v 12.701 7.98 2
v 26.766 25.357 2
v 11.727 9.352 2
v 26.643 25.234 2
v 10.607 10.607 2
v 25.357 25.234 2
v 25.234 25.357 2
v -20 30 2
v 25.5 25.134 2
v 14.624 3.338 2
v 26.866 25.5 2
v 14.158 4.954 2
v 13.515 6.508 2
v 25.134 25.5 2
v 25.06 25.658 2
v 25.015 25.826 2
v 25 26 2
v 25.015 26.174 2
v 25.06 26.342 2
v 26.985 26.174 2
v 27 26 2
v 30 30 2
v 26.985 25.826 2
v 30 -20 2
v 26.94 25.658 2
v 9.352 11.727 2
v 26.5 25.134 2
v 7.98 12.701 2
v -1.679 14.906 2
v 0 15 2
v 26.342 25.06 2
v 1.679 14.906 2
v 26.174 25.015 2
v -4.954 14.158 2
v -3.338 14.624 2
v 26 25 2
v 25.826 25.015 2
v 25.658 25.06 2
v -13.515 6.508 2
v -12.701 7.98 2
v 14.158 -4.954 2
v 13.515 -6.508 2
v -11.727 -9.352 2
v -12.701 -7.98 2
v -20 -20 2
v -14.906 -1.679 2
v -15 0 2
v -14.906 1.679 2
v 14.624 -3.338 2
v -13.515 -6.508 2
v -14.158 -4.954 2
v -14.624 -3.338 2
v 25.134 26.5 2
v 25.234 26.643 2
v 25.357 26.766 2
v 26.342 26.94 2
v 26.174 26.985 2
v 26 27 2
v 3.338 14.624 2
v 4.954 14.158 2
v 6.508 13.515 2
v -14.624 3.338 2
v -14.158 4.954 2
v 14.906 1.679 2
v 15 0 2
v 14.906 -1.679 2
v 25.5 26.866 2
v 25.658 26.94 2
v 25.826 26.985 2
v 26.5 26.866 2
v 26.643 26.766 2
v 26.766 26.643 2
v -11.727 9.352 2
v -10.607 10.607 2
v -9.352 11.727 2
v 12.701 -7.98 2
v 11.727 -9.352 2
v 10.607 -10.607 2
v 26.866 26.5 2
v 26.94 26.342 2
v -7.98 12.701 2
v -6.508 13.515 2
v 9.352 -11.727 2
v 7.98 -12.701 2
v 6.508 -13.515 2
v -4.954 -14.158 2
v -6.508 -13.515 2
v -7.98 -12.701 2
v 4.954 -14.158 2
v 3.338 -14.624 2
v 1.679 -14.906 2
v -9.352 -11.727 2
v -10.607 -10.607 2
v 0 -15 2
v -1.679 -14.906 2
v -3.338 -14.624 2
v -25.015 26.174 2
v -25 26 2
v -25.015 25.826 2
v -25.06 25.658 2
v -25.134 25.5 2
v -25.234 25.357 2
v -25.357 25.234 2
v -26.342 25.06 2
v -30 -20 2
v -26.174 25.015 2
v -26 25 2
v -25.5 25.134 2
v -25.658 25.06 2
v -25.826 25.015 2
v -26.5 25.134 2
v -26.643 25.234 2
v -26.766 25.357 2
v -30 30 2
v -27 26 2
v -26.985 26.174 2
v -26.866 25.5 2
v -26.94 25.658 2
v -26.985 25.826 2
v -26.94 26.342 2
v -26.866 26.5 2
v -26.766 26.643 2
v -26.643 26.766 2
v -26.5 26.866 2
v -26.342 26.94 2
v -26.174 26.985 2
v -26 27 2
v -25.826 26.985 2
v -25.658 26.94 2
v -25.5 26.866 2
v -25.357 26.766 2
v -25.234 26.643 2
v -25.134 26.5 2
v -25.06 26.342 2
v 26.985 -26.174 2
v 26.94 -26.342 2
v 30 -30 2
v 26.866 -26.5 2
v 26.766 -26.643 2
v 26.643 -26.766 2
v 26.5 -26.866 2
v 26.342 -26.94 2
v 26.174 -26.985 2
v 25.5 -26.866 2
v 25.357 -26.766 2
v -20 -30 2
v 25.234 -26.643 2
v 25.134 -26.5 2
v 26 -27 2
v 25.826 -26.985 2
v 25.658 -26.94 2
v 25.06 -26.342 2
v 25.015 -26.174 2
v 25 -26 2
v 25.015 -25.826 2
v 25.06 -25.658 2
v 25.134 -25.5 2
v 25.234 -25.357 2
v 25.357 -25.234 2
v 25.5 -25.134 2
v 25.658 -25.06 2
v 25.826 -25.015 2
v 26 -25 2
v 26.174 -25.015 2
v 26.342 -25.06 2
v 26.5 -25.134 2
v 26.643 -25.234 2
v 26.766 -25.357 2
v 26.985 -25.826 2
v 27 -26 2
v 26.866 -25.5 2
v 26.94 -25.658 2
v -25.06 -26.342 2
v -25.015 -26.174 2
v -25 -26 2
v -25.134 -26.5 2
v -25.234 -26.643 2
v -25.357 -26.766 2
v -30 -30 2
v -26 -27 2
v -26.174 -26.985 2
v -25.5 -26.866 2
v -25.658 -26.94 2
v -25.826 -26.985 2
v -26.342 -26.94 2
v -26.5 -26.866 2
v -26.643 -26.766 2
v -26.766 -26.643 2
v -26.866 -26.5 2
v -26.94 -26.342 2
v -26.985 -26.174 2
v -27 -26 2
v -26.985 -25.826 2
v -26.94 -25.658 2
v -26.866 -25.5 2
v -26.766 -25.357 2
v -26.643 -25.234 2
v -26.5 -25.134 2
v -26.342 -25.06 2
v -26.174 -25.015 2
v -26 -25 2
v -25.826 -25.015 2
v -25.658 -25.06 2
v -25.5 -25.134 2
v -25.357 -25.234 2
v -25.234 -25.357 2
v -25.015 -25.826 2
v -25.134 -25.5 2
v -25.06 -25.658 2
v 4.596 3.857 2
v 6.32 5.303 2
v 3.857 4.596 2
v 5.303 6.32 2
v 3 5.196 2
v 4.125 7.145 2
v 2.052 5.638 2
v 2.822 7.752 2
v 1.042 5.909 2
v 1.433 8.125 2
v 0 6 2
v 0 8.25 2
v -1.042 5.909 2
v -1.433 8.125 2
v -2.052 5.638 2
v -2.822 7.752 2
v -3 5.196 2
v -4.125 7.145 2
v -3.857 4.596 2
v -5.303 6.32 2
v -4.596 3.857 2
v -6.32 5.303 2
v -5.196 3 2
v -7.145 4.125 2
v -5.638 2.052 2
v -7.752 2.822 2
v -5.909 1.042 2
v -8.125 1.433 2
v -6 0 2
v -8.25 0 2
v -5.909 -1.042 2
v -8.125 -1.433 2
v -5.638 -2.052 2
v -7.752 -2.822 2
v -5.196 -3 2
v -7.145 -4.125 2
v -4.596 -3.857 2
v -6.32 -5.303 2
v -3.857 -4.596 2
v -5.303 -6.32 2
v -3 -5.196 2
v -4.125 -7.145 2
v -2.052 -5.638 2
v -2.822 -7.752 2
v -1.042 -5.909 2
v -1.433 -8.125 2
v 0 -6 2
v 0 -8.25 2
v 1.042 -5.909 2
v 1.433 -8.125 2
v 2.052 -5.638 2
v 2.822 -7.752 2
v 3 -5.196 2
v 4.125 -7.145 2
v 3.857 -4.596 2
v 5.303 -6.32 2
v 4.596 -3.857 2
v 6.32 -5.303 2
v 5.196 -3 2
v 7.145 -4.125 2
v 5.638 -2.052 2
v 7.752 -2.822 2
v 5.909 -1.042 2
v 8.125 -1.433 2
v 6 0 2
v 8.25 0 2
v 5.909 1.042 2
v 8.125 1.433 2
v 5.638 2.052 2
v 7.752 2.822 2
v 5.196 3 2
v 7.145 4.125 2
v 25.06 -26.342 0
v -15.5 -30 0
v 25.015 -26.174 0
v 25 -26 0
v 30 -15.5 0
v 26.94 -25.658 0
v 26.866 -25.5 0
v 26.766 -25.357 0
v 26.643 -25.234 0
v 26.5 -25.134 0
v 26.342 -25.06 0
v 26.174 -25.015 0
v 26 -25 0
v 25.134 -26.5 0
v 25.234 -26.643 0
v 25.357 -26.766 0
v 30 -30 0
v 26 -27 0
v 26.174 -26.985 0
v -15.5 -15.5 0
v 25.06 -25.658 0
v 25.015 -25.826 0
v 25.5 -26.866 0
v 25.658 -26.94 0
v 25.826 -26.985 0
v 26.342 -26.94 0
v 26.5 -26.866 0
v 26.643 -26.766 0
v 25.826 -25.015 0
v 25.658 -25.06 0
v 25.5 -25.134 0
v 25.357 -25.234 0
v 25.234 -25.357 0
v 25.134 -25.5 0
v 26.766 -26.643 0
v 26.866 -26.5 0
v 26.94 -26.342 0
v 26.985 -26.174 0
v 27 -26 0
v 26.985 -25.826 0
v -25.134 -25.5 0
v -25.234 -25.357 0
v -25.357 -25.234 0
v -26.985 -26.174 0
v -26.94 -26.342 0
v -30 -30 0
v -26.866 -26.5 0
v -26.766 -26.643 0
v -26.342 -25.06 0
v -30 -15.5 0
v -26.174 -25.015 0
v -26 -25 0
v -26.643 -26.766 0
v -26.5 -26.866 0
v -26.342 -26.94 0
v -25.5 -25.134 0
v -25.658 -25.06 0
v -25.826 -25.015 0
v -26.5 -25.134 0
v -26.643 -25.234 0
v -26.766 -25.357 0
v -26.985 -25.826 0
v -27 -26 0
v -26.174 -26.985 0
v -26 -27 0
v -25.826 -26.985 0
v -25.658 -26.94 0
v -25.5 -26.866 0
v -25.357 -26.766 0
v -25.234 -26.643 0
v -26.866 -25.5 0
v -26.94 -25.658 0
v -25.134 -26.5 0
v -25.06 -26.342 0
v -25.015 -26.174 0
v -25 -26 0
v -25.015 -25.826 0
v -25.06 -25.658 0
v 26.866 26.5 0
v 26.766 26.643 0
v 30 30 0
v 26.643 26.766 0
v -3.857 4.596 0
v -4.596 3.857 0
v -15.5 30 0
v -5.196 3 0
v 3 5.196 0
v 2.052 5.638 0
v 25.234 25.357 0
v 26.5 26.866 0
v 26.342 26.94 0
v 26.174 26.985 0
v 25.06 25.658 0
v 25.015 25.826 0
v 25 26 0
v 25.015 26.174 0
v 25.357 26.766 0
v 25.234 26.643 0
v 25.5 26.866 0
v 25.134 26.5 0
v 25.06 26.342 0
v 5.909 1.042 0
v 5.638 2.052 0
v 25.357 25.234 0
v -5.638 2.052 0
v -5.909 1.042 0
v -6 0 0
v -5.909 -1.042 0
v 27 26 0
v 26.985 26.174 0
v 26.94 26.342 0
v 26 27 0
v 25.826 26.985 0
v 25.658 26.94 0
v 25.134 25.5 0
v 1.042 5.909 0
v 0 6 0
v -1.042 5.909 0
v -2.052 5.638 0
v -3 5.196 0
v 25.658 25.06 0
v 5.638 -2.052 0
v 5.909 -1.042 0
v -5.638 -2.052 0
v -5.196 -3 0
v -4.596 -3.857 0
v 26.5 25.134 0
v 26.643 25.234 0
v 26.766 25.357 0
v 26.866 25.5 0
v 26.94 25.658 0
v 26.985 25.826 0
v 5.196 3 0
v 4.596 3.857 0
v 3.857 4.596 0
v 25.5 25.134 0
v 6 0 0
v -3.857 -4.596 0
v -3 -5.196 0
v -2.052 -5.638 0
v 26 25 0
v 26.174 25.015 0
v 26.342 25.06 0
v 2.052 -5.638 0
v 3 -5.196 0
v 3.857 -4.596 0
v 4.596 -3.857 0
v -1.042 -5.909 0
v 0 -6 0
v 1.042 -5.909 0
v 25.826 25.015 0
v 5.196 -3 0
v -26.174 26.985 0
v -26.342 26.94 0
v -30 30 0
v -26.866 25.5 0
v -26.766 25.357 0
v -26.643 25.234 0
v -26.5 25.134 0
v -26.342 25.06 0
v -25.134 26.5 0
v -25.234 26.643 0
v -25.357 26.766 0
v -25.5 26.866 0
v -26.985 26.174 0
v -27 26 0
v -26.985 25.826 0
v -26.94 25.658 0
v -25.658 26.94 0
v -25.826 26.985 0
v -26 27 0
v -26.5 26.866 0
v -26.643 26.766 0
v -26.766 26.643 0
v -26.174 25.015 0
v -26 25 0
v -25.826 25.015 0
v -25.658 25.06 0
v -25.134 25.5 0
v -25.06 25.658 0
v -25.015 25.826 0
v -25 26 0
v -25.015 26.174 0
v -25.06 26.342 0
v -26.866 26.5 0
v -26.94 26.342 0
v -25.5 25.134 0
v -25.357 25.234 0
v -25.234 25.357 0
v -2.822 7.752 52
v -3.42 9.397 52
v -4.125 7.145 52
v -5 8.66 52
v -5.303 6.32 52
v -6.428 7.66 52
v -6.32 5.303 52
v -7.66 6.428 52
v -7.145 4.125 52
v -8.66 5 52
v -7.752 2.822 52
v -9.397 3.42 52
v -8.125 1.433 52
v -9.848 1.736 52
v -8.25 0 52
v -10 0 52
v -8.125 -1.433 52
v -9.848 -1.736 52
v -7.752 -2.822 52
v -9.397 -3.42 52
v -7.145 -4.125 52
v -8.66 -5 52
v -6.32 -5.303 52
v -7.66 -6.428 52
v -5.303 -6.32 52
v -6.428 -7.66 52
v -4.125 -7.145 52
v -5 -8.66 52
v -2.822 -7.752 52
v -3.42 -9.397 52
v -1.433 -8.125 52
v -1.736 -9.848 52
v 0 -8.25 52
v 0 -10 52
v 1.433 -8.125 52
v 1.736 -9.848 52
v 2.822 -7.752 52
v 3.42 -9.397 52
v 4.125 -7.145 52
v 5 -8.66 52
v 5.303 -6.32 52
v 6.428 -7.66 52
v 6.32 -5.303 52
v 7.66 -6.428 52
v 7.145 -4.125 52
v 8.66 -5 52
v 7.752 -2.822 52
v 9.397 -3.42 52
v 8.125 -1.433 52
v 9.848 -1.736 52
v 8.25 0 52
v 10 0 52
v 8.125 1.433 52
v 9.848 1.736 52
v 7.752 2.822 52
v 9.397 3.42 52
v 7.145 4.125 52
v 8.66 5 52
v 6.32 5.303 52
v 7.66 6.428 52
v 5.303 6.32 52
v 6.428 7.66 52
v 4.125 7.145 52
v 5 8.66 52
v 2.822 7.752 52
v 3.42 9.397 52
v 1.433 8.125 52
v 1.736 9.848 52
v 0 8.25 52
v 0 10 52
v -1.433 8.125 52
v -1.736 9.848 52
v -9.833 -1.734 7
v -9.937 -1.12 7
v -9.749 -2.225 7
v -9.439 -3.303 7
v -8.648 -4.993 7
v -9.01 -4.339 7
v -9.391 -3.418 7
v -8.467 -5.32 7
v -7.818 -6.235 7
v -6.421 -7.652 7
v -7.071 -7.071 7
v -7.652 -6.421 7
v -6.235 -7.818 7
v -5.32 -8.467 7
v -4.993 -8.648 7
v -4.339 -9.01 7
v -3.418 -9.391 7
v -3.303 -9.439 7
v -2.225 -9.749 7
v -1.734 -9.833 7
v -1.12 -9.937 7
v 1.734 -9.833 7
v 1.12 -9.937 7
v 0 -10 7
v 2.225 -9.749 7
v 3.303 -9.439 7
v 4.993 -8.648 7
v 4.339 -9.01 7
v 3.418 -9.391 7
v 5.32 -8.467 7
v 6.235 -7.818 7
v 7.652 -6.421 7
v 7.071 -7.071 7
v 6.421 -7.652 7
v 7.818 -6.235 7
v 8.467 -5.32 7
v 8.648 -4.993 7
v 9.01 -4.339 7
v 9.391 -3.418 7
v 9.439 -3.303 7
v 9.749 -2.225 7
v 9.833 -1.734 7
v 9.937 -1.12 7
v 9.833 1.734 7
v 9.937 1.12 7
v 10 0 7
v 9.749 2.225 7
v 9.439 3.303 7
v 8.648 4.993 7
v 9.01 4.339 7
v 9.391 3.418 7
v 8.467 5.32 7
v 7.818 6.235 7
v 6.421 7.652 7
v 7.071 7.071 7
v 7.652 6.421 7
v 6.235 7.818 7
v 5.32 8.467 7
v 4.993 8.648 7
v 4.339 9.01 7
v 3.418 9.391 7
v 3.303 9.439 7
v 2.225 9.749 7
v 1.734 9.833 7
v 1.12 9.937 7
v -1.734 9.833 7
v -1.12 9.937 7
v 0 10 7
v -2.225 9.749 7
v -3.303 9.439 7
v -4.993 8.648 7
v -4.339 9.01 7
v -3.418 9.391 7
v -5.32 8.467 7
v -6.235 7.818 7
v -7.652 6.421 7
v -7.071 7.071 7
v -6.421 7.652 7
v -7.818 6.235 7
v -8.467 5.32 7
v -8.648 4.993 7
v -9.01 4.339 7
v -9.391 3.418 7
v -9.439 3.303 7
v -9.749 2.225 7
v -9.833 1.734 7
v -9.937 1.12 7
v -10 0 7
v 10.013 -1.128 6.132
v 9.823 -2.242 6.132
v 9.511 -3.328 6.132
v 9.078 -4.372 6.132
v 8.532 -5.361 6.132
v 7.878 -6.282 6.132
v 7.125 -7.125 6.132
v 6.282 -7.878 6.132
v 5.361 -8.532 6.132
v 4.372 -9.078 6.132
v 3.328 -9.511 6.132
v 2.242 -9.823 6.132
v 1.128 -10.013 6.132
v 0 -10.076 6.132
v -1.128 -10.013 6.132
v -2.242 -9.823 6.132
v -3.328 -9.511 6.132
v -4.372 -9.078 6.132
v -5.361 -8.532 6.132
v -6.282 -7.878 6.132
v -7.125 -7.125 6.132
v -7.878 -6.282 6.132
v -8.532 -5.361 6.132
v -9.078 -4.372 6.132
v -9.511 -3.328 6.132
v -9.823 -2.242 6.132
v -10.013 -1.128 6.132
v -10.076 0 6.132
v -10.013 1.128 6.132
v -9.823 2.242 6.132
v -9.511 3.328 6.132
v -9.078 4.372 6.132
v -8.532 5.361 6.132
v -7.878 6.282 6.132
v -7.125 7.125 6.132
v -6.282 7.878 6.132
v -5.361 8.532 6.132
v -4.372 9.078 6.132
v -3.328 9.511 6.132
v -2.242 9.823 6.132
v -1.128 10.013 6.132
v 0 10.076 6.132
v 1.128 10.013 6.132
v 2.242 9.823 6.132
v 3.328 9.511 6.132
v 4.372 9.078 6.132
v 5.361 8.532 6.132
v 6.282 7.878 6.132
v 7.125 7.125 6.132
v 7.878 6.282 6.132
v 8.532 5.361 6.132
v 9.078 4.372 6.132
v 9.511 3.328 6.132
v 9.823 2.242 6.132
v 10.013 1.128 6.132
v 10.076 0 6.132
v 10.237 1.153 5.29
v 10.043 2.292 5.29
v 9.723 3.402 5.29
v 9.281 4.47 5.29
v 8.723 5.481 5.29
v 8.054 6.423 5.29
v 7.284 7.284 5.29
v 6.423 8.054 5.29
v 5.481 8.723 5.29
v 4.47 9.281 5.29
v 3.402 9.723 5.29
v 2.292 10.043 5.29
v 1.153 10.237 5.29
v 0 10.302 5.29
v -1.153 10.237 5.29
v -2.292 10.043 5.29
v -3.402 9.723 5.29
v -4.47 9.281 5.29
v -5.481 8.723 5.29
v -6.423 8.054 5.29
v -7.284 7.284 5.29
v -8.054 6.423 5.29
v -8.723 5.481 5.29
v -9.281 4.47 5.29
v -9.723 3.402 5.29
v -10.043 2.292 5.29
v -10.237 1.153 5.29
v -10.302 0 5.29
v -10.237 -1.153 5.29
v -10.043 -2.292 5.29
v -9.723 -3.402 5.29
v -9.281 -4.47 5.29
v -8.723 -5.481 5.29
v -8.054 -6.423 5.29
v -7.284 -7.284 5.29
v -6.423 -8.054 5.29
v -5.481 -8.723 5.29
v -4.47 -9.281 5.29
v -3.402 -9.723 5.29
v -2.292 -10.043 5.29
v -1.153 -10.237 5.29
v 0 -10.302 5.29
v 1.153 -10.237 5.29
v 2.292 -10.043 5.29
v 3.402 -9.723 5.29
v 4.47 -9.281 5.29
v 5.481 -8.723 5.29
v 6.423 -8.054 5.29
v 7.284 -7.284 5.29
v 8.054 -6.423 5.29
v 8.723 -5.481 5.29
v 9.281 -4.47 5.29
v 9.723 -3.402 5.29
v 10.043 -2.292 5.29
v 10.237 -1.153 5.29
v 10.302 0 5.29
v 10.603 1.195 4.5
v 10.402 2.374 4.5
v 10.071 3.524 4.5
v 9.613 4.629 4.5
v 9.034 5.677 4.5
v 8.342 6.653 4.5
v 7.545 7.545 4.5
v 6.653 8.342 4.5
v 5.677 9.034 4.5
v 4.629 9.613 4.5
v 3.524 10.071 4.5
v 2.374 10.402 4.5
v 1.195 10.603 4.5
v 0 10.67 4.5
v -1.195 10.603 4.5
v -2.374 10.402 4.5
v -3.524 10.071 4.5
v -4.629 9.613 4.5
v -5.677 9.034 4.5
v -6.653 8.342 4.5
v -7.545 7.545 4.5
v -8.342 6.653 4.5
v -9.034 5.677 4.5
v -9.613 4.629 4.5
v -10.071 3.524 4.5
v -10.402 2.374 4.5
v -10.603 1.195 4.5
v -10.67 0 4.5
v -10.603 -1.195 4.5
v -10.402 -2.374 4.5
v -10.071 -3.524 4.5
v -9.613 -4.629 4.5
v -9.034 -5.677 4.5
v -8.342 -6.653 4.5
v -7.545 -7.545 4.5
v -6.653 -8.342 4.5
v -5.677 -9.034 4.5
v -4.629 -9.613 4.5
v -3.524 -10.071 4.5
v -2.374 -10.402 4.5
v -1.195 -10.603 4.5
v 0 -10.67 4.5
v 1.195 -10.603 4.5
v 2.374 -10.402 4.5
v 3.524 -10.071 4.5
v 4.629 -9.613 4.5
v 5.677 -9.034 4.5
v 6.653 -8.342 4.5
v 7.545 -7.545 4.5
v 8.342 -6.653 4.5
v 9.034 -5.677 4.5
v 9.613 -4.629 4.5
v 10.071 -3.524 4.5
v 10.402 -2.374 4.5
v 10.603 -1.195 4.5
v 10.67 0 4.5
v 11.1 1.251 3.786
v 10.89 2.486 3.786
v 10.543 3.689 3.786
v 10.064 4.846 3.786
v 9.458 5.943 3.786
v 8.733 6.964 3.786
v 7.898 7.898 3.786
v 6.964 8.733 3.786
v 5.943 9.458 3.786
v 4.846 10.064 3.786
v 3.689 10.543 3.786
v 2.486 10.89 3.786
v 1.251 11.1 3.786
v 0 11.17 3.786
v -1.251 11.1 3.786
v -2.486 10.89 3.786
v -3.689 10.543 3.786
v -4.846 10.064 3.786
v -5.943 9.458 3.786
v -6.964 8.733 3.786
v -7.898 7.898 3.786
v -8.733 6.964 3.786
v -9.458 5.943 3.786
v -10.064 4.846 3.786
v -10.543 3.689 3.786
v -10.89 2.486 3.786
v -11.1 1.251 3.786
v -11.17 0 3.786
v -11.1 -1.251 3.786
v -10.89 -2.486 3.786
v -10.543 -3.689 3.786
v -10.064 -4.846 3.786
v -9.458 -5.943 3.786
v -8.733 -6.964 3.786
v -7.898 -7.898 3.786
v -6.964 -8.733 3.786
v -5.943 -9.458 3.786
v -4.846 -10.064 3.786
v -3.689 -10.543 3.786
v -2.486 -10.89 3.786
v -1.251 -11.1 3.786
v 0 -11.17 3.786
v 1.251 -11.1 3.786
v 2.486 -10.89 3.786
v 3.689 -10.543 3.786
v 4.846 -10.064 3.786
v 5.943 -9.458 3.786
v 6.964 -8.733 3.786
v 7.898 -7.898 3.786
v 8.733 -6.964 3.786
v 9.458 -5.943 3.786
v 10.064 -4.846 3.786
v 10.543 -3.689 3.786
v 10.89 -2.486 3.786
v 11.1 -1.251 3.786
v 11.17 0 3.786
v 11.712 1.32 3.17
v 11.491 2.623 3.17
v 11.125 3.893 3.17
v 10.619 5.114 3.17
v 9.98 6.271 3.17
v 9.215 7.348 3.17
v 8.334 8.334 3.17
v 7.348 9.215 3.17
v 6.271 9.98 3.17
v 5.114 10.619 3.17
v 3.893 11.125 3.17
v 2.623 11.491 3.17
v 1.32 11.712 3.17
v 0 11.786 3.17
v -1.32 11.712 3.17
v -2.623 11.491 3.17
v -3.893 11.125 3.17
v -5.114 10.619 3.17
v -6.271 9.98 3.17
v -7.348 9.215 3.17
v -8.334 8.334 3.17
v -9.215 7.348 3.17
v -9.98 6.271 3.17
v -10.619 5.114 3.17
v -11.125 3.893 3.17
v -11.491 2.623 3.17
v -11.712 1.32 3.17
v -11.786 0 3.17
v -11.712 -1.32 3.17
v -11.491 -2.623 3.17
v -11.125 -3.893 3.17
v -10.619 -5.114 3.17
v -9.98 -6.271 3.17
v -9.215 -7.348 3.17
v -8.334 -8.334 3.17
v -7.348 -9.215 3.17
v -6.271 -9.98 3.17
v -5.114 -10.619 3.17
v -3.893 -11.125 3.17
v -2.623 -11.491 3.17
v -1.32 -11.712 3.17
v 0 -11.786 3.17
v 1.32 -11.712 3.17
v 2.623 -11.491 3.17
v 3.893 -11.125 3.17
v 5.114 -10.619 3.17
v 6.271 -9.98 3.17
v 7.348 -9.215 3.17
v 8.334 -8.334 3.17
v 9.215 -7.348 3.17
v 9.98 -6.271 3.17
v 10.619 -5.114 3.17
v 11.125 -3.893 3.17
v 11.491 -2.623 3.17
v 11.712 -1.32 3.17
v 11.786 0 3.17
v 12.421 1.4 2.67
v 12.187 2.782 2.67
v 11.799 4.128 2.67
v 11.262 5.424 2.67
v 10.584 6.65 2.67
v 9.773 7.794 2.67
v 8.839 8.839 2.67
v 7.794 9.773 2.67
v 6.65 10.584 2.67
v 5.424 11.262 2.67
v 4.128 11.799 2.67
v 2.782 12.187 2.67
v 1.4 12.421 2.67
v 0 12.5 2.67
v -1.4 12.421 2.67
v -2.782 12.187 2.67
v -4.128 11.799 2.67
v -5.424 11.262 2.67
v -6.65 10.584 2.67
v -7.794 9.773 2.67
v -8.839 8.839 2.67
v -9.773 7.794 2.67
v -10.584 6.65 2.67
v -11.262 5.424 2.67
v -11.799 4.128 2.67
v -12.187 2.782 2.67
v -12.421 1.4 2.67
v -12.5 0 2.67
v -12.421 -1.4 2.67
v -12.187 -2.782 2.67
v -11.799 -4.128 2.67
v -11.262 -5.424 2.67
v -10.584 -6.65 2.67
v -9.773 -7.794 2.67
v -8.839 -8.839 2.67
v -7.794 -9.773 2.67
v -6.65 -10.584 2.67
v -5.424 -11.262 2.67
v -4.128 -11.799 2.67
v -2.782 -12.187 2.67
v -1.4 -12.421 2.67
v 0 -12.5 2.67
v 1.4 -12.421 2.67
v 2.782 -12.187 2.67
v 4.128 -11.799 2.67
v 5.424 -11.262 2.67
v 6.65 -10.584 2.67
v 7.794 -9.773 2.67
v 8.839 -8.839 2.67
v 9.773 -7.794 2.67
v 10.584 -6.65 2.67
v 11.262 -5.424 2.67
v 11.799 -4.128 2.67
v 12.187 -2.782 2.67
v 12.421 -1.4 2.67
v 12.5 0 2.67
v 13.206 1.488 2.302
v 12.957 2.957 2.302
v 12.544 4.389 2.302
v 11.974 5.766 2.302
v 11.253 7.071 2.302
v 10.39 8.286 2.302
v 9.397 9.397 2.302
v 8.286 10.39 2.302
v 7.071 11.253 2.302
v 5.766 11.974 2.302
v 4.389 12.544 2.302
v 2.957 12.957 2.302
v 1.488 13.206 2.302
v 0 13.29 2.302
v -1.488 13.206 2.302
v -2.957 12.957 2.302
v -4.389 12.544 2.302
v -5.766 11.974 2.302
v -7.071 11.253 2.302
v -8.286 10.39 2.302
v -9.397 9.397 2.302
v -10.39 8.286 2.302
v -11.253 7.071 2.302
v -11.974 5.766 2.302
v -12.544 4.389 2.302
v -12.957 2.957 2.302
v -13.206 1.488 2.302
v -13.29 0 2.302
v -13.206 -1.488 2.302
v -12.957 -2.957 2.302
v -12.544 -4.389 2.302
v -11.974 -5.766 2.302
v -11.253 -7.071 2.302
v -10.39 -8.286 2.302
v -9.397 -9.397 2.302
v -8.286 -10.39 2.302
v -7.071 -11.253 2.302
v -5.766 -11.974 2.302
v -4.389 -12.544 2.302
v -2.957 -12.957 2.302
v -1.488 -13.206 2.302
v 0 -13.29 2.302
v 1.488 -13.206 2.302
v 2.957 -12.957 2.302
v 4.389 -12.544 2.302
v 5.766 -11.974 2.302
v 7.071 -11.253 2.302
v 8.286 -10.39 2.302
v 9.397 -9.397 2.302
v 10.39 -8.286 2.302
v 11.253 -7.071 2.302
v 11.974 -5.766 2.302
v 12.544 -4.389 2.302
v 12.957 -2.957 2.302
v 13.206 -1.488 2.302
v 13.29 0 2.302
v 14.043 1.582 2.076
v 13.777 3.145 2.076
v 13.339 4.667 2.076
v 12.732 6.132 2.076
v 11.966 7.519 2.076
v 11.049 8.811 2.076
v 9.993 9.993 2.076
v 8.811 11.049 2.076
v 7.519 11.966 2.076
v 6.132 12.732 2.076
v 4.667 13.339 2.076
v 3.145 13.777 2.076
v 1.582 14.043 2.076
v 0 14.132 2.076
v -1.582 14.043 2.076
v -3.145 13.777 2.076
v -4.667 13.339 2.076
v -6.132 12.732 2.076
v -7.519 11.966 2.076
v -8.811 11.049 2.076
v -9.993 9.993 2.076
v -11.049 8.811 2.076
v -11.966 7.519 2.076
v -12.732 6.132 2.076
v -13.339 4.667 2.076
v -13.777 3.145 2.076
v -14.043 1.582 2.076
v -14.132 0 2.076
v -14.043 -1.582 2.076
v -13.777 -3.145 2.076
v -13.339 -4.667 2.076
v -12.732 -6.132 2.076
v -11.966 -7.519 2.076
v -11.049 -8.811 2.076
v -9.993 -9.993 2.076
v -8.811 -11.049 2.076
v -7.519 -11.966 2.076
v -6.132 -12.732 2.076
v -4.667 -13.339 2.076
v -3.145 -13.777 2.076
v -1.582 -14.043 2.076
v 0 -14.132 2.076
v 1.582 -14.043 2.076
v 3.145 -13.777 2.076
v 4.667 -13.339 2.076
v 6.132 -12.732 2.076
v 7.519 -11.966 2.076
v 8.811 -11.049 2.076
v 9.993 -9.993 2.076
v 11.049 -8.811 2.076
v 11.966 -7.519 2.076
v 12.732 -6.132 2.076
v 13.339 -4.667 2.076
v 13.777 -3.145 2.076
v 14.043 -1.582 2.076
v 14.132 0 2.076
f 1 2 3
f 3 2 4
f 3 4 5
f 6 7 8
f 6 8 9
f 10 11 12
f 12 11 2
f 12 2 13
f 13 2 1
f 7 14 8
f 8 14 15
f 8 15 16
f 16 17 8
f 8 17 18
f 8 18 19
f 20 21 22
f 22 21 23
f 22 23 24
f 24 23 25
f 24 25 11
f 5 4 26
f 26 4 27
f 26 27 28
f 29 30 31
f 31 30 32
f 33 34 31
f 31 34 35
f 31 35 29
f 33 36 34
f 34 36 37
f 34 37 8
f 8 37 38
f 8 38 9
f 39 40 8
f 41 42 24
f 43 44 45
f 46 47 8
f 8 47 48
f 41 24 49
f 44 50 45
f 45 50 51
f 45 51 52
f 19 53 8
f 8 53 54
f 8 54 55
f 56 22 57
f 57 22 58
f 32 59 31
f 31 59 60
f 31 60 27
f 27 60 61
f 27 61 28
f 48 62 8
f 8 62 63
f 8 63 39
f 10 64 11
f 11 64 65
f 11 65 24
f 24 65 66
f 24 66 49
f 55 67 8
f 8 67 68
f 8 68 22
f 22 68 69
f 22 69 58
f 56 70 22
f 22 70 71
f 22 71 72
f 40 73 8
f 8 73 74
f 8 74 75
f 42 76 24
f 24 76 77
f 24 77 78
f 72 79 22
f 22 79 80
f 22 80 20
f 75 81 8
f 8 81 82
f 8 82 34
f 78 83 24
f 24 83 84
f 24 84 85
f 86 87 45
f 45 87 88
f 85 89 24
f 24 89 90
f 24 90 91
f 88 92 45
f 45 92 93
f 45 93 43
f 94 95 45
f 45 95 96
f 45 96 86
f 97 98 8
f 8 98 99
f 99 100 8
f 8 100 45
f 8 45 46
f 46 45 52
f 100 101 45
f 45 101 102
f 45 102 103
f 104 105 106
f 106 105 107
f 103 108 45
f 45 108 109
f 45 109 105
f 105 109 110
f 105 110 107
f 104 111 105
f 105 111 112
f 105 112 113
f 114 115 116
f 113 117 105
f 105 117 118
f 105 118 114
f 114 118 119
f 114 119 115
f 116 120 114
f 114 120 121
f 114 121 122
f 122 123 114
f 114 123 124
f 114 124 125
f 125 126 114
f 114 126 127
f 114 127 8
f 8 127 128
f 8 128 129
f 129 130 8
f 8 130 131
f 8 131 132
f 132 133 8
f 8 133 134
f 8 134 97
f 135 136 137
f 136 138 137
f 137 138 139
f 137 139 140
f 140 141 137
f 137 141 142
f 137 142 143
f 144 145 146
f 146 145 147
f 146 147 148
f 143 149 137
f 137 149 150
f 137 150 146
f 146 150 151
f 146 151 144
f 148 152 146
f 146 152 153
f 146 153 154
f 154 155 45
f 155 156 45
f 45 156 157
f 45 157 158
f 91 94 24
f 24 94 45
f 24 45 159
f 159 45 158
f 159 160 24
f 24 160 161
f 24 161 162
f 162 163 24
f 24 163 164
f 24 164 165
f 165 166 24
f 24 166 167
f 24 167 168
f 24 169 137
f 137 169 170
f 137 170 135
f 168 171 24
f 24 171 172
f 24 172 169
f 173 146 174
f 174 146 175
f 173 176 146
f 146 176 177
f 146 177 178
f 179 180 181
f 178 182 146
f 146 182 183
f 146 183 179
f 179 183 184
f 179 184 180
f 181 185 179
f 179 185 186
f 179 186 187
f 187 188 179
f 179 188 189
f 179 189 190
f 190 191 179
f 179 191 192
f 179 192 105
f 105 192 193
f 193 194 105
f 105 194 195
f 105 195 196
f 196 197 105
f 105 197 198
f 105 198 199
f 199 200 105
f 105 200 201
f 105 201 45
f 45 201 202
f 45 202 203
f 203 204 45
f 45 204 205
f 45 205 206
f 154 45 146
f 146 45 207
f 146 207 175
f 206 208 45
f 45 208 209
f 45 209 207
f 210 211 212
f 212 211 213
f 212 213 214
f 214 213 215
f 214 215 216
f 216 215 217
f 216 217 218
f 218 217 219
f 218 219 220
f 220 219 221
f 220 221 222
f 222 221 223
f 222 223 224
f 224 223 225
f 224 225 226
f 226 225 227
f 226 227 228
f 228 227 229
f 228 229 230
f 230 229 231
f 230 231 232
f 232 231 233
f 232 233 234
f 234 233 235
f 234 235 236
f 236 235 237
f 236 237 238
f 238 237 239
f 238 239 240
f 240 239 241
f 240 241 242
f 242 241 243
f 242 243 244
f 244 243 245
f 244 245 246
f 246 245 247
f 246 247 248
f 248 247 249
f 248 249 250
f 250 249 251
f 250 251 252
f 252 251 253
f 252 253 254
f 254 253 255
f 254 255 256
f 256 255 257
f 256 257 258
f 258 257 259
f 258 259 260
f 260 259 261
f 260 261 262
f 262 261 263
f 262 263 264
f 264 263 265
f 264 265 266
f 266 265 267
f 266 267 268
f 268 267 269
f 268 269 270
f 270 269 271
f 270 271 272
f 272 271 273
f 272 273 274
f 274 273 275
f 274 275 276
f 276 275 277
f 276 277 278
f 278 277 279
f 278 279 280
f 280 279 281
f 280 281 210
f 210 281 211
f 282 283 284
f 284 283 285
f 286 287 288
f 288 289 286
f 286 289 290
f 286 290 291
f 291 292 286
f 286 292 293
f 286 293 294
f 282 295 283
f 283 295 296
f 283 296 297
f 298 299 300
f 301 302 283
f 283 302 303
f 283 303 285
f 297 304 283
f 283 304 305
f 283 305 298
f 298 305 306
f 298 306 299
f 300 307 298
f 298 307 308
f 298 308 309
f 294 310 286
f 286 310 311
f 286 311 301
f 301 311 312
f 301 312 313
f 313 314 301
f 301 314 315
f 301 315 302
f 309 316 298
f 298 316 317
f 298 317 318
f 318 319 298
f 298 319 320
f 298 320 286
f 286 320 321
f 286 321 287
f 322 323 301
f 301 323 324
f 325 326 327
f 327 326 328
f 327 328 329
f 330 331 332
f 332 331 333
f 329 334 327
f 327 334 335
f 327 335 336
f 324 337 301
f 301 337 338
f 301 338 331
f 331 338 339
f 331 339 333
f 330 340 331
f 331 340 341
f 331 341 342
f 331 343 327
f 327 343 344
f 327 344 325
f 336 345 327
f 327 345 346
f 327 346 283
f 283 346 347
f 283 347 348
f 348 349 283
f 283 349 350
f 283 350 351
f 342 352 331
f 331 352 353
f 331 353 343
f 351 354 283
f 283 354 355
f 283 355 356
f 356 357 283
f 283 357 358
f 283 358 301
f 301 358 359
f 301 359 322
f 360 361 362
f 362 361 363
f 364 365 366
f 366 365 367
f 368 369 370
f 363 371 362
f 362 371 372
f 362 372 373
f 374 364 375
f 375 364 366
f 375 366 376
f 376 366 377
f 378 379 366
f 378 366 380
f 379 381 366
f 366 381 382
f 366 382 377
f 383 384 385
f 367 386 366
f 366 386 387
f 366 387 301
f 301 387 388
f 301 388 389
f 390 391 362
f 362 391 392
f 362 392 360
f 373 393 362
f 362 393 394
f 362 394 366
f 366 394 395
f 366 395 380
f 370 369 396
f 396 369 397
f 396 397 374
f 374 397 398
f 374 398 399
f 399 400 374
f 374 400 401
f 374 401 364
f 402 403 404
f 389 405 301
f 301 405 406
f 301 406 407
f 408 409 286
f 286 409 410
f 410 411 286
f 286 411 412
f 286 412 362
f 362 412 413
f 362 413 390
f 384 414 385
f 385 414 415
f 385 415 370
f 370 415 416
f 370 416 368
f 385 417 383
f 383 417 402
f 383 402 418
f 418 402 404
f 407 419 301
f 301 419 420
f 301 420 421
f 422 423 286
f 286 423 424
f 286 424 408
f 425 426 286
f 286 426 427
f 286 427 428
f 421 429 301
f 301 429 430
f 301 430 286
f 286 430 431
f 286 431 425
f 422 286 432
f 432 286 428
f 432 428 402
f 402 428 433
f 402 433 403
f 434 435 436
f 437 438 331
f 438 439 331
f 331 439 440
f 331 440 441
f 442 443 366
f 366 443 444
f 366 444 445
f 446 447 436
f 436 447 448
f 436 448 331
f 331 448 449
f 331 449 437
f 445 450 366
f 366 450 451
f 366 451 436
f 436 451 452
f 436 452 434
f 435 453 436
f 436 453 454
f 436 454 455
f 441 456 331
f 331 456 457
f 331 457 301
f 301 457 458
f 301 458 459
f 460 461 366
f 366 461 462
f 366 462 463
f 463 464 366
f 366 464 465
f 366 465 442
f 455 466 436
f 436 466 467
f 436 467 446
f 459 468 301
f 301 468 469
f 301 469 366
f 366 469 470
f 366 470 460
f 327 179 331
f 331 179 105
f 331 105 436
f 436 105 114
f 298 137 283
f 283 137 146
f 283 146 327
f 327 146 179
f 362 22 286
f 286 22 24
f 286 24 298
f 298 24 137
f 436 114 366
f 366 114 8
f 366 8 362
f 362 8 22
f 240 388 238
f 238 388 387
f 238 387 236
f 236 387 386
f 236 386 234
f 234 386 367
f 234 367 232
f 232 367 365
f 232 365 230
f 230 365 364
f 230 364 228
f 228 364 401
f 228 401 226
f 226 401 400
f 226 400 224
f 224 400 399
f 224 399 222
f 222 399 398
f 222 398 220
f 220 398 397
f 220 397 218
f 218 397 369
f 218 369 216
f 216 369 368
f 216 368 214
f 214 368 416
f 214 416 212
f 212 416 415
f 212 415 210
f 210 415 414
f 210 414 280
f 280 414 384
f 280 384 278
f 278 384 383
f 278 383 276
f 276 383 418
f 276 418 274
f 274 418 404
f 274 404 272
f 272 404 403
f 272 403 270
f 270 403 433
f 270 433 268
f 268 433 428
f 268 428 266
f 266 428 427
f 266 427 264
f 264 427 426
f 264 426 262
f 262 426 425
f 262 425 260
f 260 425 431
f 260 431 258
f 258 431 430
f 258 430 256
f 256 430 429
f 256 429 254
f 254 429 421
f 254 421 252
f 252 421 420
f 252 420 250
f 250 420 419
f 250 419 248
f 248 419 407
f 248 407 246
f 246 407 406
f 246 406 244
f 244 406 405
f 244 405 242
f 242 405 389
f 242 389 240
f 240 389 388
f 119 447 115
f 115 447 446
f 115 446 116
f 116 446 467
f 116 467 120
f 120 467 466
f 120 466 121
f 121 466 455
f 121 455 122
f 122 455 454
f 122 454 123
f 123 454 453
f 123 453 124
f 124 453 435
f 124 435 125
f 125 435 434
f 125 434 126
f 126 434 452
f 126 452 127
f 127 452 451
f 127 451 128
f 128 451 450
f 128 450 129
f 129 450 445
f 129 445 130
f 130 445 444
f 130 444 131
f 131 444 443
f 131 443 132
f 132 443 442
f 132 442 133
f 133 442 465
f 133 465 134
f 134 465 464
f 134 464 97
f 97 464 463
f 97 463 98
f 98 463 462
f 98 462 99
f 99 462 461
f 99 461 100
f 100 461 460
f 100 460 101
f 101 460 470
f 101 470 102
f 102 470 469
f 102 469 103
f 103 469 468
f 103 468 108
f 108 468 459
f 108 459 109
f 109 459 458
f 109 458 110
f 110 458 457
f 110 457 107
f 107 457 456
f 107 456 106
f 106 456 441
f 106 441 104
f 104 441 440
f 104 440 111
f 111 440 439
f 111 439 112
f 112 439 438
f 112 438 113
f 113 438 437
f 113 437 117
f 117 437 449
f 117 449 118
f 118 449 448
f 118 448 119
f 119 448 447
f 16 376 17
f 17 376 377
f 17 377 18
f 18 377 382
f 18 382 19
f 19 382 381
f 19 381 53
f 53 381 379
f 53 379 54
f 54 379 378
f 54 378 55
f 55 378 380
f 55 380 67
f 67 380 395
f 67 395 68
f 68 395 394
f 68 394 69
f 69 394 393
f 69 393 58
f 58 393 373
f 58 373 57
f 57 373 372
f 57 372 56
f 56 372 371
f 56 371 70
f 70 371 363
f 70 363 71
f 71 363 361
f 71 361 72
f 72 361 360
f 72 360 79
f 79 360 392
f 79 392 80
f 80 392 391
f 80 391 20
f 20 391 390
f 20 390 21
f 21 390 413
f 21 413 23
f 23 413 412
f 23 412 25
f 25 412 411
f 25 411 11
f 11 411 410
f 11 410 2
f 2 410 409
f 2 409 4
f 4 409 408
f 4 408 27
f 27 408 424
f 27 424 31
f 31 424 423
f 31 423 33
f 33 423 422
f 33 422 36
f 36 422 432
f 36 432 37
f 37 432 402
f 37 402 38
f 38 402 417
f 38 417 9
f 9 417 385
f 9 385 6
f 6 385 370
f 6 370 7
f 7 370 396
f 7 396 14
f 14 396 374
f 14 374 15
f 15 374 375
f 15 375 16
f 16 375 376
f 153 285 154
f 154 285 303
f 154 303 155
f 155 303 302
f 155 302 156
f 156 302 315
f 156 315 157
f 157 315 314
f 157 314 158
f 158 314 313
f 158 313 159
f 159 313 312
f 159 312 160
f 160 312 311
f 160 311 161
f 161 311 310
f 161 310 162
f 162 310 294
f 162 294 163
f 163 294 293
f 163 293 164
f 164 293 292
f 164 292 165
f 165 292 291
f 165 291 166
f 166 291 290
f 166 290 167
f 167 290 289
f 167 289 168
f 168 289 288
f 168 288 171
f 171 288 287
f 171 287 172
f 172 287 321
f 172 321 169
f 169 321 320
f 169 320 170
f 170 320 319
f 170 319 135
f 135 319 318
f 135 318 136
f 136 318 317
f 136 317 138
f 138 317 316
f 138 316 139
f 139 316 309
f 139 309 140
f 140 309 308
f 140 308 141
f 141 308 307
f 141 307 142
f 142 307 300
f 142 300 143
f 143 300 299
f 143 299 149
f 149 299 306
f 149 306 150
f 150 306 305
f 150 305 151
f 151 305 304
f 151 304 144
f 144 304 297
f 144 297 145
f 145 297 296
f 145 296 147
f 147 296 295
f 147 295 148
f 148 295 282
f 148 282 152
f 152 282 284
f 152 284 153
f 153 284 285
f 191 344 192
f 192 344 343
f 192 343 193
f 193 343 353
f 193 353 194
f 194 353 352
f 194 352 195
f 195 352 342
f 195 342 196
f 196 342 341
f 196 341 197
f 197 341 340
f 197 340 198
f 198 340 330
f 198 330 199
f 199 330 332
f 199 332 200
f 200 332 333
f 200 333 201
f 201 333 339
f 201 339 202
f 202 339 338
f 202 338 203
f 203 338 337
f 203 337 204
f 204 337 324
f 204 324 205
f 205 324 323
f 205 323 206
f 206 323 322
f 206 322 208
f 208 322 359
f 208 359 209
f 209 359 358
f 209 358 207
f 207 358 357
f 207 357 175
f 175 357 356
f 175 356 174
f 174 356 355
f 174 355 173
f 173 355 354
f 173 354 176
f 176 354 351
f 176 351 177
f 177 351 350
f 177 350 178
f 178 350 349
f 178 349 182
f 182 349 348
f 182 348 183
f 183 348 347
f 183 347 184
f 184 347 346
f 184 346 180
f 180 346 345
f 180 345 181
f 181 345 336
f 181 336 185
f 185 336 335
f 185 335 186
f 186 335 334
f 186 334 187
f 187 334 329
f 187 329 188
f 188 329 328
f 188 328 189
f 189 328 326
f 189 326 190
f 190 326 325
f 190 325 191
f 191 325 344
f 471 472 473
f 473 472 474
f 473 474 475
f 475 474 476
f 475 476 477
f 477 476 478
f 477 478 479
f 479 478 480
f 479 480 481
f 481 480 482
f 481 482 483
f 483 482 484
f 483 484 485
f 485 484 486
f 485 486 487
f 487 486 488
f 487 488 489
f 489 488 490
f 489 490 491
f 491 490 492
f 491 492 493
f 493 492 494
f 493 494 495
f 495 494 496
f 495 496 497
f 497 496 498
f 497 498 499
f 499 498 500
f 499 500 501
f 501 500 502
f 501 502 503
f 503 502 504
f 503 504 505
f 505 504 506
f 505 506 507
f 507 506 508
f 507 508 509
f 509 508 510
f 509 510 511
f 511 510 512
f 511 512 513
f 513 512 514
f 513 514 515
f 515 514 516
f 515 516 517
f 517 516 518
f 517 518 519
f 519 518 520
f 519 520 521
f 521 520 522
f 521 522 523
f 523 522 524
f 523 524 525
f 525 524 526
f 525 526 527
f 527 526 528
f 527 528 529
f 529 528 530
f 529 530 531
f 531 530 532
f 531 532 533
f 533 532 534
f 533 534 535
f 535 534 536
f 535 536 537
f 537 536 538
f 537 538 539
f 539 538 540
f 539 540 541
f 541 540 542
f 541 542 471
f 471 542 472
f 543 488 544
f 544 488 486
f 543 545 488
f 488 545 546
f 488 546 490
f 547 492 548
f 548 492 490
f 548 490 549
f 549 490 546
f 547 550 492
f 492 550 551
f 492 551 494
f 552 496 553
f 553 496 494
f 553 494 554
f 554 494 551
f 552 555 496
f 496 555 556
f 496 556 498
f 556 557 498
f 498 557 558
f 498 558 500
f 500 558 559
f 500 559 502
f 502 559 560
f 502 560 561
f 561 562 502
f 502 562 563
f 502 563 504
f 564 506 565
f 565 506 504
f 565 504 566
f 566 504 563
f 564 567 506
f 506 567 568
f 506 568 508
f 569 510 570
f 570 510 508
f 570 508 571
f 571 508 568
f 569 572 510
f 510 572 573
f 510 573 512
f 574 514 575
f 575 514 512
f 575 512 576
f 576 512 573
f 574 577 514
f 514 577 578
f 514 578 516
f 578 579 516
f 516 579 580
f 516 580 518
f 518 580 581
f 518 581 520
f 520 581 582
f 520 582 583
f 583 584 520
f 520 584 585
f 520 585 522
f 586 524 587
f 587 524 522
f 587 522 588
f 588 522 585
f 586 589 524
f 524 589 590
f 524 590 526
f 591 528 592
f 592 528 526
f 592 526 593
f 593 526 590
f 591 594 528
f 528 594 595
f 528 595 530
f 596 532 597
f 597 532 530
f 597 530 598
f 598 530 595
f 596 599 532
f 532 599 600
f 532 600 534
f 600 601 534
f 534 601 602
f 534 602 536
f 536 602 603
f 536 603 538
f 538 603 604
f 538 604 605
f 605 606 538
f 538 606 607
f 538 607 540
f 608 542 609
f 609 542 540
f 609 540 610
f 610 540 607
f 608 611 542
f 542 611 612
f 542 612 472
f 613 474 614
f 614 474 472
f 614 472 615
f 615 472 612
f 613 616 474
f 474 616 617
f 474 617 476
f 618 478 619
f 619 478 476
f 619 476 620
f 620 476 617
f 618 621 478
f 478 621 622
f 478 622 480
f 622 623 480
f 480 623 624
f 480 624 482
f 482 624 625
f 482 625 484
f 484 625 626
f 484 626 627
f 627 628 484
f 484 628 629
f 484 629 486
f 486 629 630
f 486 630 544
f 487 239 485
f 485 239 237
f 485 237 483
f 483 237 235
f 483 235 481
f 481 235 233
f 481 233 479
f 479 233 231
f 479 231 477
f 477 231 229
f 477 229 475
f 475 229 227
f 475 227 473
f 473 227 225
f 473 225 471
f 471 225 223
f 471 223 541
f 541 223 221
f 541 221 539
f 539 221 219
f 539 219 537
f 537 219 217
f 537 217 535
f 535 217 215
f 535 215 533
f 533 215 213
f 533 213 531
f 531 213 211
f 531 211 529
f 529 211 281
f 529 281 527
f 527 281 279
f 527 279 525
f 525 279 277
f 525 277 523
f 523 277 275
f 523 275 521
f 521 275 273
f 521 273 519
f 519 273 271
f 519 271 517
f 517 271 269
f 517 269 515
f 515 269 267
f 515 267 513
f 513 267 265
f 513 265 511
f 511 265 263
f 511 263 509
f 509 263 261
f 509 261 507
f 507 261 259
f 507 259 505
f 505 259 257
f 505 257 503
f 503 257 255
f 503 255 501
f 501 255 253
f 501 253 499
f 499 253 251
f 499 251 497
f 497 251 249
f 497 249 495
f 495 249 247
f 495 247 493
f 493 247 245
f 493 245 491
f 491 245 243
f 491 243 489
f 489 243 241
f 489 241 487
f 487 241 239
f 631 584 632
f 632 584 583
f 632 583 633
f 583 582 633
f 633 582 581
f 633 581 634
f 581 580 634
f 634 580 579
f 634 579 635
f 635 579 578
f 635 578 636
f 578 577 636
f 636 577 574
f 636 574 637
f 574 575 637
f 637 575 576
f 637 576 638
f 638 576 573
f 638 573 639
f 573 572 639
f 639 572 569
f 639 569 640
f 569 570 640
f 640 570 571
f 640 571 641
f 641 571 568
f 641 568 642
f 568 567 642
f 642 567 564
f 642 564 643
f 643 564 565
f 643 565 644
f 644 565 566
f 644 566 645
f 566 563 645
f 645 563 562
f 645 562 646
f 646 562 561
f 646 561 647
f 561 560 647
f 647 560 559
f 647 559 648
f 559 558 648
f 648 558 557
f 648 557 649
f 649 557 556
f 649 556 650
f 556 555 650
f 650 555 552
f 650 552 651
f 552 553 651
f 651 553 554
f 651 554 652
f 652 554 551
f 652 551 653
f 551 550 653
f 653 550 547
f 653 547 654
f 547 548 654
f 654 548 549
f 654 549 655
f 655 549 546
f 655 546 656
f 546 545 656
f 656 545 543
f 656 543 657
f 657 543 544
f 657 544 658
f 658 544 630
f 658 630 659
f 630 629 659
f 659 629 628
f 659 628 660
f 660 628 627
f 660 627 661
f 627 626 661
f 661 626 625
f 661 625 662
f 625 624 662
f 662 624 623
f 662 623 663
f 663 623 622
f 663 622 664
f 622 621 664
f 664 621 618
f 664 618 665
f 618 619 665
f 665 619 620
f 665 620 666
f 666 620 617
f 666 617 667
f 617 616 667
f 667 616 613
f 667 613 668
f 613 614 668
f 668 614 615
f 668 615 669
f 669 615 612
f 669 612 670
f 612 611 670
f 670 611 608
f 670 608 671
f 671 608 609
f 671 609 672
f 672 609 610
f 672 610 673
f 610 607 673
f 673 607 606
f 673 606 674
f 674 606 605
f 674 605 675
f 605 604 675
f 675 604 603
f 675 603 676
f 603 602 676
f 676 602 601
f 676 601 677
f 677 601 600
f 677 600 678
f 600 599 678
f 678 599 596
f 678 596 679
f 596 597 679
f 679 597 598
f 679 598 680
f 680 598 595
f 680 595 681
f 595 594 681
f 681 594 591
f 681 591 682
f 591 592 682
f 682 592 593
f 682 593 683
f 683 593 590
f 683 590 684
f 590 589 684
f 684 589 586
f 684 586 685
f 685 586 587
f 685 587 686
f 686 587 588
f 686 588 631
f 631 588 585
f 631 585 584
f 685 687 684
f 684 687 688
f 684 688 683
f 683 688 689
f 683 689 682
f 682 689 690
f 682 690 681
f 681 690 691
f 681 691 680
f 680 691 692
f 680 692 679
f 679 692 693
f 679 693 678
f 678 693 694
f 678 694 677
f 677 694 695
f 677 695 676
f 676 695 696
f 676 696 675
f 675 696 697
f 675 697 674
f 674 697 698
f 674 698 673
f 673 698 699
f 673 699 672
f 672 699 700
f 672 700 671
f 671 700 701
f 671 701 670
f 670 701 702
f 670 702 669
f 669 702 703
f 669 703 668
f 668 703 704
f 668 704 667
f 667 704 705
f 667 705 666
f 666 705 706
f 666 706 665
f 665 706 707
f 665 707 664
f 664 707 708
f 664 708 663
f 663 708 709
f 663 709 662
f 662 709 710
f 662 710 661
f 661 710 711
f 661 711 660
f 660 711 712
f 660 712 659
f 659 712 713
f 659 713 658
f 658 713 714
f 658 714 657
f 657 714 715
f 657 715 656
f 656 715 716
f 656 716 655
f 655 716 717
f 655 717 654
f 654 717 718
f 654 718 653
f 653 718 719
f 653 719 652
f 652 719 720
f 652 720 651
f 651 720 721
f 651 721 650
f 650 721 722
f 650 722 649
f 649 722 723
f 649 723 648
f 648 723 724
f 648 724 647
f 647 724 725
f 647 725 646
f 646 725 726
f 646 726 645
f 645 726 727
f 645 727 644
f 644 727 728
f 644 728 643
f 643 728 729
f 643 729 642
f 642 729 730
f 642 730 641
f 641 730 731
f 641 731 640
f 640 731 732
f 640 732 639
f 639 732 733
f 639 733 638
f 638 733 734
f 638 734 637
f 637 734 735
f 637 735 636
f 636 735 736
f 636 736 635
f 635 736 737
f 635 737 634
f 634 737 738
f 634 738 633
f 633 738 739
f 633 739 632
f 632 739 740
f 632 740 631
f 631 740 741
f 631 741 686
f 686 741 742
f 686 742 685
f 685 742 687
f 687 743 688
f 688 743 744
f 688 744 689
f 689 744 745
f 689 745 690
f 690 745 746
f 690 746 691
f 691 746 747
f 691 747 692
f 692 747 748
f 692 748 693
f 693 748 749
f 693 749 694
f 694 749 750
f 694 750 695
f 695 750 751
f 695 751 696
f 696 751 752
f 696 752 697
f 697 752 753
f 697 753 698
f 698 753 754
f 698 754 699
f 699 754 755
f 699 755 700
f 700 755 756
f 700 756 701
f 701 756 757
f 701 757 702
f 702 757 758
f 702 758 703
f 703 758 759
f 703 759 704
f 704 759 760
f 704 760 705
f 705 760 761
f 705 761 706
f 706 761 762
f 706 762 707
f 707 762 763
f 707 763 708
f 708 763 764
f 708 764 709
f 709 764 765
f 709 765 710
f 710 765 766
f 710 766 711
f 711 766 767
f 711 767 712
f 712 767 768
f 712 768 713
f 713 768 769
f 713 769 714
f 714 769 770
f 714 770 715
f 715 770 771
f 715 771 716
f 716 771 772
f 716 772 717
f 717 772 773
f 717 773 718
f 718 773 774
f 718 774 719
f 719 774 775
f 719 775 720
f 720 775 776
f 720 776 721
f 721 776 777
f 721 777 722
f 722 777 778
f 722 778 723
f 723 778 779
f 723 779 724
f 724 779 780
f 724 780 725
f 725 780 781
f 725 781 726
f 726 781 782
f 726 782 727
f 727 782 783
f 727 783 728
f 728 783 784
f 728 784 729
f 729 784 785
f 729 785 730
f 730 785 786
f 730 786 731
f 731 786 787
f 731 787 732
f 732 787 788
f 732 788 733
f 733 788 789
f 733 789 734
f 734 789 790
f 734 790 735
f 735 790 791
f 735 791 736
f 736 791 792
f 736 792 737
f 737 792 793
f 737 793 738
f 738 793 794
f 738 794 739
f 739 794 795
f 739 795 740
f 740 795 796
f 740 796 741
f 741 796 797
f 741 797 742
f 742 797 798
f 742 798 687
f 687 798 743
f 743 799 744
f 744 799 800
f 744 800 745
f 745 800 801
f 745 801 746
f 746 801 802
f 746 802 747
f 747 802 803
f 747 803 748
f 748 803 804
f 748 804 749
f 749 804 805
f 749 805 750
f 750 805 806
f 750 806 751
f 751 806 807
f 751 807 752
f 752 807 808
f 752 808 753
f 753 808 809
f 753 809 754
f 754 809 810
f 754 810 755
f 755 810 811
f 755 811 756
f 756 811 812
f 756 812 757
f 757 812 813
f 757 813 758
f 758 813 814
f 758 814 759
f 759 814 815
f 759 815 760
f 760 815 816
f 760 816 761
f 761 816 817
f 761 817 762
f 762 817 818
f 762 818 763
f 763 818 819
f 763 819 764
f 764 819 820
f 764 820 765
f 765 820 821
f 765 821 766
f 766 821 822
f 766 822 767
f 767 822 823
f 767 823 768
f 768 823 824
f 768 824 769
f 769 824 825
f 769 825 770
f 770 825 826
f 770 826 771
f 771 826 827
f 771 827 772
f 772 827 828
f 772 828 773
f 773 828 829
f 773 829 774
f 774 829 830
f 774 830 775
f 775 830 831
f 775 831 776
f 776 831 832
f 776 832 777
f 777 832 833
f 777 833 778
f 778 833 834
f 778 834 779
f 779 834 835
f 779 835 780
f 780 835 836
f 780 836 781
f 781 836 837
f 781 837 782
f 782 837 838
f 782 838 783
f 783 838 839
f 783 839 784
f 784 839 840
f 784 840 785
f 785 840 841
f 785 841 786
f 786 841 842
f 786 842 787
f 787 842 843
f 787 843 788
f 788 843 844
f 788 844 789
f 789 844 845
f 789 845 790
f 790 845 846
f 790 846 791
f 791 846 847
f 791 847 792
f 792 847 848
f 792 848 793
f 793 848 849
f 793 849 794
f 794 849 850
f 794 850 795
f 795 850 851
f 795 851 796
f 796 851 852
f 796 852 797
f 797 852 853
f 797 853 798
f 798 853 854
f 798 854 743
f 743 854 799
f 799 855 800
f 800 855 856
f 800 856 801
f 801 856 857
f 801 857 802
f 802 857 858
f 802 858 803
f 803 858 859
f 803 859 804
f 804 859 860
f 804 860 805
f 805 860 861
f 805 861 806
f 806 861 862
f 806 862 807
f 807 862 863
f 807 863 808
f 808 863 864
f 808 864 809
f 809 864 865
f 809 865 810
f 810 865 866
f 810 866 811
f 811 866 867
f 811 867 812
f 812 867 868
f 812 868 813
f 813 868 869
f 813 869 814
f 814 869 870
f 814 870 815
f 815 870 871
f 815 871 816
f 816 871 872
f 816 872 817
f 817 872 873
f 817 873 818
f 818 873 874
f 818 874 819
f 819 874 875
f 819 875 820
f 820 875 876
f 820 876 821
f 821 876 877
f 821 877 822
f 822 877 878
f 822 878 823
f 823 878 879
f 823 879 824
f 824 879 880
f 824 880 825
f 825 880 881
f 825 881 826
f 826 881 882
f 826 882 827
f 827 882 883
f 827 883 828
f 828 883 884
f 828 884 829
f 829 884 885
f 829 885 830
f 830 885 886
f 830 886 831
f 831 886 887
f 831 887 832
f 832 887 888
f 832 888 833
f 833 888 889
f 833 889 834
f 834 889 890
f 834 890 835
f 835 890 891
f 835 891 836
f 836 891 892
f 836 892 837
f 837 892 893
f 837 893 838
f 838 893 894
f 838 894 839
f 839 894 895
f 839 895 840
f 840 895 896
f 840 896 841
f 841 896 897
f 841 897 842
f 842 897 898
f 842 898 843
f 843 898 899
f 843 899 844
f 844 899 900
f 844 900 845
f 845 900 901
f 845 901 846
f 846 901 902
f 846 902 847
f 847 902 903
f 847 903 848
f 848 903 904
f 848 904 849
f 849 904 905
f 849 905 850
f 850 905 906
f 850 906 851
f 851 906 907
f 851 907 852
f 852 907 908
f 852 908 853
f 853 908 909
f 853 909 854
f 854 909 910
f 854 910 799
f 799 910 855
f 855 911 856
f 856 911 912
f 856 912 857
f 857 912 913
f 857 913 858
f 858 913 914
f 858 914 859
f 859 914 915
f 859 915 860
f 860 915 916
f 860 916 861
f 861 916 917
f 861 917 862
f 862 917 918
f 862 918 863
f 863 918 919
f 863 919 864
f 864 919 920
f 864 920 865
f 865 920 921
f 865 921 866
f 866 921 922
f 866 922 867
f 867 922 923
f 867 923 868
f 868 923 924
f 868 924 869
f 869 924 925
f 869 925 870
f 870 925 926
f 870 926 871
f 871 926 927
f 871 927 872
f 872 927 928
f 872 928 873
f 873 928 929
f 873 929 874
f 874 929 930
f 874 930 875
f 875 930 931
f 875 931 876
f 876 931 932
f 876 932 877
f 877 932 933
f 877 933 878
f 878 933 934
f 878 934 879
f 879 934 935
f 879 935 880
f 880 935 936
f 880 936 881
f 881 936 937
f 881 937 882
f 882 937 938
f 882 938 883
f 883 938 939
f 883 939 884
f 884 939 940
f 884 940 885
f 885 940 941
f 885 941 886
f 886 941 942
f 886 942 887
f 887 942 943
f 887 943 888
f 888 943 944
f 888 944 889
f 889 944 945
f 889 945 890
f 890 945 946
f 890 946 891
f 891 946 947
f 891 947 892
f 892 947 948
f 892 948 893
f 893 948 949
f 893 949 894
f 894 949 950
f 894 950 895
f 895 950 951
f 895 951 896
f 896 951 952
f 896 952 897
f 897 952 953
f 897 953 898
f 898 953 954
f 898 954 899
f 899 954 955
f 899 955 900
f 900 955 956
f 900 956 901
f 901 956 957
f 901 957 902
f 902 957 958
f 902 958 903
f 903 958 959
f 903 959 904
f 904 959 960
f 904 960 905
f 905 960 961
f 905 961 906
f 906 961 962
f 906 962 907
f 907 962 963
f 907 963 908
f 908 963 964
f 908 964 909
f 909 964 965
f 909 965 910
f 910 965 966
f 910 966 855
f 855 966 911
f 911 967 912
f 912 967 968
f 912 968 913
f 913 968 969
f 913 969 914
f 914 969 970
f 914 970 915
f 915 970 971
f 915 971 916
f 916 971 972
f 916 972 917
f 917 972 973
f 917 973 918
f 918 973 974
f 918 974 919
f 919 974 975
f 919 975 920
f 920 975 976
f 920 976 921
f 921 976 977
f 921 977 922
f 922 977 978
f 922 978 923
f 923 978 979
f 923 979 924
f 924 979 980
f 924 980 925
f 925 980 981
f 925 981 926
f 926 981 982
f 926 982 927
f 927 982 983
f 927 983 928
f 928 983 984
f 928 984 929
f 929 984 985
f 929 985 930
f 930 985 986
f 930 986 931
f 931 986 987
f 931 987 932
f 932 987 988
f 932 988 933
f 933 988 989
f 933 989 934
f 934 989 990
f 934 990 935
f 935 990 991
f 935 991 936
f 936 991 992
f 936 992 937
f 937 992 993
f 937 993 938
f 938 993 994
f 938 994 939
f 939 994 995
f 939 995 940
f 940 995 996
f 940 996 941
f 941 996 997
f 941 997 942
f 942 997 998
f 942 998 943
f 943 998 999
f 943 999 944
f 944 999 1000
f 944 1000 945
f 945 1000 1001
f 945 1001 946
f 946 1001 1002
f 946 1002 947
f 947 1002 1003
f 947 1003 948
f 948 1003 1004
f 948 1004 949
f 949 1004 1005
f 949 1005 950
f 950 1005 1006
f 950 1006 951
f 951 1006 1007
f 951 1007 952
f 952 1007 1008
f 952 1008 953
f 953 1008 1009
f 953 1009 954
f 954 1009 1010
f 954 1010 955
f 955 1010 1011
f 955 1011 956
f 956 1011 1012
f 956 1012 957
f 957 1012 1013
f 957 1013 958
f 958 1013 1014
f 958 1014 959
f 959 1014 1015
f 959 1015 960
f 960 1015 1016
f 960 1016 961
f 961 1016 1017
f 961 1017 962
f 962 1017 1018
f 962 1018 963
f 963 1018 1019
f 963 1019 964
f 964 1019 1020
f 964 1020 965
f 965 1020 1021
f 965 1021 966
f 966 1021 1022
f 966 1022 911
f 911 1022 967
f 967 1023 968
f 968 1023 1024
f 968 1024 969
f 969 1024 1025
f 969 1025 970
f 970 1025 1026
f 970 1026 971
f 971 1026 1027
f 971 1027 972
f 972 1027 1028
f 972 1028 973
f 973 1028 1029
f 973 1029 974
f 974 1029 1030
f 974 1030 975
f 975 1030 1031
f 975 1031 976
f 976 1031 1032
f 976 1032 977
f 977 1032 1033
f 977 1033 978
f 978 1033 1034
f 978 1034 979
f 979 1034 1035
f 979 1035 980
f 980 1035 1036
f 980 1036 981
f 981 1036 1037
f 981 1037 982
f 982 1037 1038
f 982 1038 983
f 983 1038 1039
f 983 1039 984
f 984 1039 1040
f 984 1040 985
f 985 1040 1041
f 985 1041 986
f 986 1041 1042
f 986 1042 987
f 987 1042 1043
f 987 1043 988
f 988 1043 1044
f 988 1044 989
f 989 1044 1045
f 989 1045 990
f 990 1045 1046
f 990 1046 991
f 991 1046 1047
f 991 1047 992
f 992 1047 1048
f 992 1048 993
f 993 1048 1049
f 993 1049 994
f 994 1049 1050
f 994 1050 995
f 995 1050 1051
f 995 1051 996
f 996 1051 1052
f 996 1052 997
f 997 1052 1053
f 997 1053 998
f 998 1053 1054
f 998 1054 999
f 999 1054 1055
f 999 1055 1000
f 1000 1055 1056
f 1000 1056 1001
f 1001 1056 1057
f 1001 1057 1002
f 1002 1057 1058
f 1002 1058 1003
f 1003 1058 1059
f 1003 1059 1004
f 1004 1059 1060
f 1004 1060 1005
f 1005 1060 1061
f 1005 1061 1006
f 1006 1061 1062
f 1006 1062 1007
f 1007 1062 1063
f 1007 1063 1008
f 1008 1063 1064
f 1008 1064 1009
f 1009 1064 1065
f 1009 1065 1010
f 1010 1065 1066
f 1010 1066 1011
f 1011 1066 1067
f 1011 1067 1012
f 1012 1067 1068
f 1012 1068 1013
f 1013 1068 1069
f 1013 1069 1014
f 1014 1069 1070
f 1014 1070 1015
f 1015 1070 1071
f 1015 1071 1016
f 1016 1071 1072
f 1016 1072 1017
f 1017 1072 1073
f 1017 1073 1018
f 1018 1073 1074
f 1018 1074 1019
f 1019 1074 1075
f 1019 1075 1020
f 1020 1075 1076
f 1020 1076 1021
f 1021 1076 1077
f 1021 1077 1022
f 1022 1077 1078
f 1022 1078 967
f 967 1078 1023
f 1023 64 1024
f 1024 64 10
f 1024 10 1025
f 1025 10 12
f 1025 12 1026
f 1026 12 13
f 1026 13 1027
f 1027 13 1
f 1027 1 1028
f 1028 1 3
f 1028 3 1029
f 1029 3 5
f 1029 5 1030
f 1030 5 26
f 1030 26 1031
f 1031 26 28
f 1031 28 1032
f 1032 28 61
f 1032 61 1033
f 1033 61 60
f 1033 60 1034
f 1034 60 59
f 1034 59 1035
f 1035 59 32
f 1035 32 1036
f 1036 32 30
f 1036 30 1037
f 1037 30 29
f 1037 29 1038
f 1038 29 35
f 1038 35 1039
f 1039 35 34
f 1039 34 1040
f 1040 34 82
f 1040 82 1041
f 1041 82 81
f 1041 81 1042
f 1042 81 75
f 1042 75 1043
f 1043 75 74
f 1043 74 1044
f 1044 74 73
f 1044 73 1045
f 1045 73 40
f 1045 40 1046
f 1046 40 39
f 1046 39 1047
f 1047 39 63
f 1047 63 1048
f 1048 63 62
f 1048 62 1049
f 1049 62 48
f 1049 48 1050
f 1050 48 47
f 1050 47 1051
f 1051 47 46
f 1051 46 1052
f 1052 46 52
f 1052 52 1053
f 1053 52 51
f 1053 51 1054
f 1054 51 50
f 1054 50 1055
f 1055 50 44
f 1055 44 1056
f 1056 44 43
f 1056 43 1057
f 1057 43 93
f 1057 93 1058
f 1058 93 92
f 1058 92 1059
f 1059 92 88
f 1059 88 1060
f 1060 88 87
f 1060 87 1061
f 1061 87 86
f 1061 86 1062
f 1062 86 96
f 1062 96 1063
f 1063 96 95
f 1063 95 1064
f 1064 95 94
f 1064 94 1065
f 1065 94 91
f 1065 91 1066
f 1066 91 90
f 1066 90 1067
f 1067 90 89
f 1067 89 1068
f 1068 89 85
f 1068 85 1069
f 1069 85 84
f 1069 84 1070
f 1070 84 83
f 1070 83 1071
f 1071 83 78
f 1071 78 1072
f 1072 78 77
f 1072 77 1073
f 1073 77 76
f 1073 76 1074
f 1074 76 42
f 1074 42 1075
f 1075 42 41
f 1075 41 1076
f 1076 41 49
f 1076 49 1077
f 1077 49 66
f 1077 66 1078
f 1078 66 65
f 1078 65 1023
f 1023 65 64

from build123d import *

# Parameters (mm, degrees)
ESQUISSE1_W        = 60
ESQUISSE1_H        = 60
ESQUISSE1_R        = 6
ESQUISSE1_R_2      = 1
BOSS_EXTRU_1_DEPTH = 2
ESQUISSE2_R        = 10
ESQUISSE2_R_2      = 8.25
BOSS_EXTRU_2_DEPTH = 50
CONG_1_R           = 5


with BuildPart() as part:
    # Esquisse1 → Boss.-Extru.1 (new body)
    with BuildSketch(Plane.XY):
        Rectangle(ESQUISSE1_W, ESQUISSE1_H)
        Circle(ESQUISSE1_R, mode=Mode.SUBTRACT)
        with Locations((-26, 26)):
            Circle(ESQUISSE1_R_2, mode=Mode.SUBTRACT)
        with Locations((26, 26)):
            Circle(ESQUISSE1_R_2, mode=Mode.SUBTRACT)
        with Locations((26, -26)):
            Circle(ESQUISSE1_R_2, mode=Mode.SUBTRACT)
        with Locations((-26, -26)):
            Circle(ESQUISSE1_R_2, mode=Mode.SUBTRACT)
    extrude(amount=BOSS_EXTRU_1_DEPTH)

    # Esquisse2 → Boss.-Extru.2 (add)
    with BuildSketch(Plane.XY.offset(2)):
        Circle(ESQUISSE2_R)
        Circle(ESQUISSE2_R_2, mode=Mode.SUBTRACT)
    extrude(amount=BOSS_EXTRU_2_DEPTH)

    # Congé1
    cong_1_edges = [part.edges().sort_by_distance(p)[0] for p in [
        (-10, 0, 2),
    ]]
    fillet(cong_1_edges, radius=CONG_1_R)


solid = part.part
